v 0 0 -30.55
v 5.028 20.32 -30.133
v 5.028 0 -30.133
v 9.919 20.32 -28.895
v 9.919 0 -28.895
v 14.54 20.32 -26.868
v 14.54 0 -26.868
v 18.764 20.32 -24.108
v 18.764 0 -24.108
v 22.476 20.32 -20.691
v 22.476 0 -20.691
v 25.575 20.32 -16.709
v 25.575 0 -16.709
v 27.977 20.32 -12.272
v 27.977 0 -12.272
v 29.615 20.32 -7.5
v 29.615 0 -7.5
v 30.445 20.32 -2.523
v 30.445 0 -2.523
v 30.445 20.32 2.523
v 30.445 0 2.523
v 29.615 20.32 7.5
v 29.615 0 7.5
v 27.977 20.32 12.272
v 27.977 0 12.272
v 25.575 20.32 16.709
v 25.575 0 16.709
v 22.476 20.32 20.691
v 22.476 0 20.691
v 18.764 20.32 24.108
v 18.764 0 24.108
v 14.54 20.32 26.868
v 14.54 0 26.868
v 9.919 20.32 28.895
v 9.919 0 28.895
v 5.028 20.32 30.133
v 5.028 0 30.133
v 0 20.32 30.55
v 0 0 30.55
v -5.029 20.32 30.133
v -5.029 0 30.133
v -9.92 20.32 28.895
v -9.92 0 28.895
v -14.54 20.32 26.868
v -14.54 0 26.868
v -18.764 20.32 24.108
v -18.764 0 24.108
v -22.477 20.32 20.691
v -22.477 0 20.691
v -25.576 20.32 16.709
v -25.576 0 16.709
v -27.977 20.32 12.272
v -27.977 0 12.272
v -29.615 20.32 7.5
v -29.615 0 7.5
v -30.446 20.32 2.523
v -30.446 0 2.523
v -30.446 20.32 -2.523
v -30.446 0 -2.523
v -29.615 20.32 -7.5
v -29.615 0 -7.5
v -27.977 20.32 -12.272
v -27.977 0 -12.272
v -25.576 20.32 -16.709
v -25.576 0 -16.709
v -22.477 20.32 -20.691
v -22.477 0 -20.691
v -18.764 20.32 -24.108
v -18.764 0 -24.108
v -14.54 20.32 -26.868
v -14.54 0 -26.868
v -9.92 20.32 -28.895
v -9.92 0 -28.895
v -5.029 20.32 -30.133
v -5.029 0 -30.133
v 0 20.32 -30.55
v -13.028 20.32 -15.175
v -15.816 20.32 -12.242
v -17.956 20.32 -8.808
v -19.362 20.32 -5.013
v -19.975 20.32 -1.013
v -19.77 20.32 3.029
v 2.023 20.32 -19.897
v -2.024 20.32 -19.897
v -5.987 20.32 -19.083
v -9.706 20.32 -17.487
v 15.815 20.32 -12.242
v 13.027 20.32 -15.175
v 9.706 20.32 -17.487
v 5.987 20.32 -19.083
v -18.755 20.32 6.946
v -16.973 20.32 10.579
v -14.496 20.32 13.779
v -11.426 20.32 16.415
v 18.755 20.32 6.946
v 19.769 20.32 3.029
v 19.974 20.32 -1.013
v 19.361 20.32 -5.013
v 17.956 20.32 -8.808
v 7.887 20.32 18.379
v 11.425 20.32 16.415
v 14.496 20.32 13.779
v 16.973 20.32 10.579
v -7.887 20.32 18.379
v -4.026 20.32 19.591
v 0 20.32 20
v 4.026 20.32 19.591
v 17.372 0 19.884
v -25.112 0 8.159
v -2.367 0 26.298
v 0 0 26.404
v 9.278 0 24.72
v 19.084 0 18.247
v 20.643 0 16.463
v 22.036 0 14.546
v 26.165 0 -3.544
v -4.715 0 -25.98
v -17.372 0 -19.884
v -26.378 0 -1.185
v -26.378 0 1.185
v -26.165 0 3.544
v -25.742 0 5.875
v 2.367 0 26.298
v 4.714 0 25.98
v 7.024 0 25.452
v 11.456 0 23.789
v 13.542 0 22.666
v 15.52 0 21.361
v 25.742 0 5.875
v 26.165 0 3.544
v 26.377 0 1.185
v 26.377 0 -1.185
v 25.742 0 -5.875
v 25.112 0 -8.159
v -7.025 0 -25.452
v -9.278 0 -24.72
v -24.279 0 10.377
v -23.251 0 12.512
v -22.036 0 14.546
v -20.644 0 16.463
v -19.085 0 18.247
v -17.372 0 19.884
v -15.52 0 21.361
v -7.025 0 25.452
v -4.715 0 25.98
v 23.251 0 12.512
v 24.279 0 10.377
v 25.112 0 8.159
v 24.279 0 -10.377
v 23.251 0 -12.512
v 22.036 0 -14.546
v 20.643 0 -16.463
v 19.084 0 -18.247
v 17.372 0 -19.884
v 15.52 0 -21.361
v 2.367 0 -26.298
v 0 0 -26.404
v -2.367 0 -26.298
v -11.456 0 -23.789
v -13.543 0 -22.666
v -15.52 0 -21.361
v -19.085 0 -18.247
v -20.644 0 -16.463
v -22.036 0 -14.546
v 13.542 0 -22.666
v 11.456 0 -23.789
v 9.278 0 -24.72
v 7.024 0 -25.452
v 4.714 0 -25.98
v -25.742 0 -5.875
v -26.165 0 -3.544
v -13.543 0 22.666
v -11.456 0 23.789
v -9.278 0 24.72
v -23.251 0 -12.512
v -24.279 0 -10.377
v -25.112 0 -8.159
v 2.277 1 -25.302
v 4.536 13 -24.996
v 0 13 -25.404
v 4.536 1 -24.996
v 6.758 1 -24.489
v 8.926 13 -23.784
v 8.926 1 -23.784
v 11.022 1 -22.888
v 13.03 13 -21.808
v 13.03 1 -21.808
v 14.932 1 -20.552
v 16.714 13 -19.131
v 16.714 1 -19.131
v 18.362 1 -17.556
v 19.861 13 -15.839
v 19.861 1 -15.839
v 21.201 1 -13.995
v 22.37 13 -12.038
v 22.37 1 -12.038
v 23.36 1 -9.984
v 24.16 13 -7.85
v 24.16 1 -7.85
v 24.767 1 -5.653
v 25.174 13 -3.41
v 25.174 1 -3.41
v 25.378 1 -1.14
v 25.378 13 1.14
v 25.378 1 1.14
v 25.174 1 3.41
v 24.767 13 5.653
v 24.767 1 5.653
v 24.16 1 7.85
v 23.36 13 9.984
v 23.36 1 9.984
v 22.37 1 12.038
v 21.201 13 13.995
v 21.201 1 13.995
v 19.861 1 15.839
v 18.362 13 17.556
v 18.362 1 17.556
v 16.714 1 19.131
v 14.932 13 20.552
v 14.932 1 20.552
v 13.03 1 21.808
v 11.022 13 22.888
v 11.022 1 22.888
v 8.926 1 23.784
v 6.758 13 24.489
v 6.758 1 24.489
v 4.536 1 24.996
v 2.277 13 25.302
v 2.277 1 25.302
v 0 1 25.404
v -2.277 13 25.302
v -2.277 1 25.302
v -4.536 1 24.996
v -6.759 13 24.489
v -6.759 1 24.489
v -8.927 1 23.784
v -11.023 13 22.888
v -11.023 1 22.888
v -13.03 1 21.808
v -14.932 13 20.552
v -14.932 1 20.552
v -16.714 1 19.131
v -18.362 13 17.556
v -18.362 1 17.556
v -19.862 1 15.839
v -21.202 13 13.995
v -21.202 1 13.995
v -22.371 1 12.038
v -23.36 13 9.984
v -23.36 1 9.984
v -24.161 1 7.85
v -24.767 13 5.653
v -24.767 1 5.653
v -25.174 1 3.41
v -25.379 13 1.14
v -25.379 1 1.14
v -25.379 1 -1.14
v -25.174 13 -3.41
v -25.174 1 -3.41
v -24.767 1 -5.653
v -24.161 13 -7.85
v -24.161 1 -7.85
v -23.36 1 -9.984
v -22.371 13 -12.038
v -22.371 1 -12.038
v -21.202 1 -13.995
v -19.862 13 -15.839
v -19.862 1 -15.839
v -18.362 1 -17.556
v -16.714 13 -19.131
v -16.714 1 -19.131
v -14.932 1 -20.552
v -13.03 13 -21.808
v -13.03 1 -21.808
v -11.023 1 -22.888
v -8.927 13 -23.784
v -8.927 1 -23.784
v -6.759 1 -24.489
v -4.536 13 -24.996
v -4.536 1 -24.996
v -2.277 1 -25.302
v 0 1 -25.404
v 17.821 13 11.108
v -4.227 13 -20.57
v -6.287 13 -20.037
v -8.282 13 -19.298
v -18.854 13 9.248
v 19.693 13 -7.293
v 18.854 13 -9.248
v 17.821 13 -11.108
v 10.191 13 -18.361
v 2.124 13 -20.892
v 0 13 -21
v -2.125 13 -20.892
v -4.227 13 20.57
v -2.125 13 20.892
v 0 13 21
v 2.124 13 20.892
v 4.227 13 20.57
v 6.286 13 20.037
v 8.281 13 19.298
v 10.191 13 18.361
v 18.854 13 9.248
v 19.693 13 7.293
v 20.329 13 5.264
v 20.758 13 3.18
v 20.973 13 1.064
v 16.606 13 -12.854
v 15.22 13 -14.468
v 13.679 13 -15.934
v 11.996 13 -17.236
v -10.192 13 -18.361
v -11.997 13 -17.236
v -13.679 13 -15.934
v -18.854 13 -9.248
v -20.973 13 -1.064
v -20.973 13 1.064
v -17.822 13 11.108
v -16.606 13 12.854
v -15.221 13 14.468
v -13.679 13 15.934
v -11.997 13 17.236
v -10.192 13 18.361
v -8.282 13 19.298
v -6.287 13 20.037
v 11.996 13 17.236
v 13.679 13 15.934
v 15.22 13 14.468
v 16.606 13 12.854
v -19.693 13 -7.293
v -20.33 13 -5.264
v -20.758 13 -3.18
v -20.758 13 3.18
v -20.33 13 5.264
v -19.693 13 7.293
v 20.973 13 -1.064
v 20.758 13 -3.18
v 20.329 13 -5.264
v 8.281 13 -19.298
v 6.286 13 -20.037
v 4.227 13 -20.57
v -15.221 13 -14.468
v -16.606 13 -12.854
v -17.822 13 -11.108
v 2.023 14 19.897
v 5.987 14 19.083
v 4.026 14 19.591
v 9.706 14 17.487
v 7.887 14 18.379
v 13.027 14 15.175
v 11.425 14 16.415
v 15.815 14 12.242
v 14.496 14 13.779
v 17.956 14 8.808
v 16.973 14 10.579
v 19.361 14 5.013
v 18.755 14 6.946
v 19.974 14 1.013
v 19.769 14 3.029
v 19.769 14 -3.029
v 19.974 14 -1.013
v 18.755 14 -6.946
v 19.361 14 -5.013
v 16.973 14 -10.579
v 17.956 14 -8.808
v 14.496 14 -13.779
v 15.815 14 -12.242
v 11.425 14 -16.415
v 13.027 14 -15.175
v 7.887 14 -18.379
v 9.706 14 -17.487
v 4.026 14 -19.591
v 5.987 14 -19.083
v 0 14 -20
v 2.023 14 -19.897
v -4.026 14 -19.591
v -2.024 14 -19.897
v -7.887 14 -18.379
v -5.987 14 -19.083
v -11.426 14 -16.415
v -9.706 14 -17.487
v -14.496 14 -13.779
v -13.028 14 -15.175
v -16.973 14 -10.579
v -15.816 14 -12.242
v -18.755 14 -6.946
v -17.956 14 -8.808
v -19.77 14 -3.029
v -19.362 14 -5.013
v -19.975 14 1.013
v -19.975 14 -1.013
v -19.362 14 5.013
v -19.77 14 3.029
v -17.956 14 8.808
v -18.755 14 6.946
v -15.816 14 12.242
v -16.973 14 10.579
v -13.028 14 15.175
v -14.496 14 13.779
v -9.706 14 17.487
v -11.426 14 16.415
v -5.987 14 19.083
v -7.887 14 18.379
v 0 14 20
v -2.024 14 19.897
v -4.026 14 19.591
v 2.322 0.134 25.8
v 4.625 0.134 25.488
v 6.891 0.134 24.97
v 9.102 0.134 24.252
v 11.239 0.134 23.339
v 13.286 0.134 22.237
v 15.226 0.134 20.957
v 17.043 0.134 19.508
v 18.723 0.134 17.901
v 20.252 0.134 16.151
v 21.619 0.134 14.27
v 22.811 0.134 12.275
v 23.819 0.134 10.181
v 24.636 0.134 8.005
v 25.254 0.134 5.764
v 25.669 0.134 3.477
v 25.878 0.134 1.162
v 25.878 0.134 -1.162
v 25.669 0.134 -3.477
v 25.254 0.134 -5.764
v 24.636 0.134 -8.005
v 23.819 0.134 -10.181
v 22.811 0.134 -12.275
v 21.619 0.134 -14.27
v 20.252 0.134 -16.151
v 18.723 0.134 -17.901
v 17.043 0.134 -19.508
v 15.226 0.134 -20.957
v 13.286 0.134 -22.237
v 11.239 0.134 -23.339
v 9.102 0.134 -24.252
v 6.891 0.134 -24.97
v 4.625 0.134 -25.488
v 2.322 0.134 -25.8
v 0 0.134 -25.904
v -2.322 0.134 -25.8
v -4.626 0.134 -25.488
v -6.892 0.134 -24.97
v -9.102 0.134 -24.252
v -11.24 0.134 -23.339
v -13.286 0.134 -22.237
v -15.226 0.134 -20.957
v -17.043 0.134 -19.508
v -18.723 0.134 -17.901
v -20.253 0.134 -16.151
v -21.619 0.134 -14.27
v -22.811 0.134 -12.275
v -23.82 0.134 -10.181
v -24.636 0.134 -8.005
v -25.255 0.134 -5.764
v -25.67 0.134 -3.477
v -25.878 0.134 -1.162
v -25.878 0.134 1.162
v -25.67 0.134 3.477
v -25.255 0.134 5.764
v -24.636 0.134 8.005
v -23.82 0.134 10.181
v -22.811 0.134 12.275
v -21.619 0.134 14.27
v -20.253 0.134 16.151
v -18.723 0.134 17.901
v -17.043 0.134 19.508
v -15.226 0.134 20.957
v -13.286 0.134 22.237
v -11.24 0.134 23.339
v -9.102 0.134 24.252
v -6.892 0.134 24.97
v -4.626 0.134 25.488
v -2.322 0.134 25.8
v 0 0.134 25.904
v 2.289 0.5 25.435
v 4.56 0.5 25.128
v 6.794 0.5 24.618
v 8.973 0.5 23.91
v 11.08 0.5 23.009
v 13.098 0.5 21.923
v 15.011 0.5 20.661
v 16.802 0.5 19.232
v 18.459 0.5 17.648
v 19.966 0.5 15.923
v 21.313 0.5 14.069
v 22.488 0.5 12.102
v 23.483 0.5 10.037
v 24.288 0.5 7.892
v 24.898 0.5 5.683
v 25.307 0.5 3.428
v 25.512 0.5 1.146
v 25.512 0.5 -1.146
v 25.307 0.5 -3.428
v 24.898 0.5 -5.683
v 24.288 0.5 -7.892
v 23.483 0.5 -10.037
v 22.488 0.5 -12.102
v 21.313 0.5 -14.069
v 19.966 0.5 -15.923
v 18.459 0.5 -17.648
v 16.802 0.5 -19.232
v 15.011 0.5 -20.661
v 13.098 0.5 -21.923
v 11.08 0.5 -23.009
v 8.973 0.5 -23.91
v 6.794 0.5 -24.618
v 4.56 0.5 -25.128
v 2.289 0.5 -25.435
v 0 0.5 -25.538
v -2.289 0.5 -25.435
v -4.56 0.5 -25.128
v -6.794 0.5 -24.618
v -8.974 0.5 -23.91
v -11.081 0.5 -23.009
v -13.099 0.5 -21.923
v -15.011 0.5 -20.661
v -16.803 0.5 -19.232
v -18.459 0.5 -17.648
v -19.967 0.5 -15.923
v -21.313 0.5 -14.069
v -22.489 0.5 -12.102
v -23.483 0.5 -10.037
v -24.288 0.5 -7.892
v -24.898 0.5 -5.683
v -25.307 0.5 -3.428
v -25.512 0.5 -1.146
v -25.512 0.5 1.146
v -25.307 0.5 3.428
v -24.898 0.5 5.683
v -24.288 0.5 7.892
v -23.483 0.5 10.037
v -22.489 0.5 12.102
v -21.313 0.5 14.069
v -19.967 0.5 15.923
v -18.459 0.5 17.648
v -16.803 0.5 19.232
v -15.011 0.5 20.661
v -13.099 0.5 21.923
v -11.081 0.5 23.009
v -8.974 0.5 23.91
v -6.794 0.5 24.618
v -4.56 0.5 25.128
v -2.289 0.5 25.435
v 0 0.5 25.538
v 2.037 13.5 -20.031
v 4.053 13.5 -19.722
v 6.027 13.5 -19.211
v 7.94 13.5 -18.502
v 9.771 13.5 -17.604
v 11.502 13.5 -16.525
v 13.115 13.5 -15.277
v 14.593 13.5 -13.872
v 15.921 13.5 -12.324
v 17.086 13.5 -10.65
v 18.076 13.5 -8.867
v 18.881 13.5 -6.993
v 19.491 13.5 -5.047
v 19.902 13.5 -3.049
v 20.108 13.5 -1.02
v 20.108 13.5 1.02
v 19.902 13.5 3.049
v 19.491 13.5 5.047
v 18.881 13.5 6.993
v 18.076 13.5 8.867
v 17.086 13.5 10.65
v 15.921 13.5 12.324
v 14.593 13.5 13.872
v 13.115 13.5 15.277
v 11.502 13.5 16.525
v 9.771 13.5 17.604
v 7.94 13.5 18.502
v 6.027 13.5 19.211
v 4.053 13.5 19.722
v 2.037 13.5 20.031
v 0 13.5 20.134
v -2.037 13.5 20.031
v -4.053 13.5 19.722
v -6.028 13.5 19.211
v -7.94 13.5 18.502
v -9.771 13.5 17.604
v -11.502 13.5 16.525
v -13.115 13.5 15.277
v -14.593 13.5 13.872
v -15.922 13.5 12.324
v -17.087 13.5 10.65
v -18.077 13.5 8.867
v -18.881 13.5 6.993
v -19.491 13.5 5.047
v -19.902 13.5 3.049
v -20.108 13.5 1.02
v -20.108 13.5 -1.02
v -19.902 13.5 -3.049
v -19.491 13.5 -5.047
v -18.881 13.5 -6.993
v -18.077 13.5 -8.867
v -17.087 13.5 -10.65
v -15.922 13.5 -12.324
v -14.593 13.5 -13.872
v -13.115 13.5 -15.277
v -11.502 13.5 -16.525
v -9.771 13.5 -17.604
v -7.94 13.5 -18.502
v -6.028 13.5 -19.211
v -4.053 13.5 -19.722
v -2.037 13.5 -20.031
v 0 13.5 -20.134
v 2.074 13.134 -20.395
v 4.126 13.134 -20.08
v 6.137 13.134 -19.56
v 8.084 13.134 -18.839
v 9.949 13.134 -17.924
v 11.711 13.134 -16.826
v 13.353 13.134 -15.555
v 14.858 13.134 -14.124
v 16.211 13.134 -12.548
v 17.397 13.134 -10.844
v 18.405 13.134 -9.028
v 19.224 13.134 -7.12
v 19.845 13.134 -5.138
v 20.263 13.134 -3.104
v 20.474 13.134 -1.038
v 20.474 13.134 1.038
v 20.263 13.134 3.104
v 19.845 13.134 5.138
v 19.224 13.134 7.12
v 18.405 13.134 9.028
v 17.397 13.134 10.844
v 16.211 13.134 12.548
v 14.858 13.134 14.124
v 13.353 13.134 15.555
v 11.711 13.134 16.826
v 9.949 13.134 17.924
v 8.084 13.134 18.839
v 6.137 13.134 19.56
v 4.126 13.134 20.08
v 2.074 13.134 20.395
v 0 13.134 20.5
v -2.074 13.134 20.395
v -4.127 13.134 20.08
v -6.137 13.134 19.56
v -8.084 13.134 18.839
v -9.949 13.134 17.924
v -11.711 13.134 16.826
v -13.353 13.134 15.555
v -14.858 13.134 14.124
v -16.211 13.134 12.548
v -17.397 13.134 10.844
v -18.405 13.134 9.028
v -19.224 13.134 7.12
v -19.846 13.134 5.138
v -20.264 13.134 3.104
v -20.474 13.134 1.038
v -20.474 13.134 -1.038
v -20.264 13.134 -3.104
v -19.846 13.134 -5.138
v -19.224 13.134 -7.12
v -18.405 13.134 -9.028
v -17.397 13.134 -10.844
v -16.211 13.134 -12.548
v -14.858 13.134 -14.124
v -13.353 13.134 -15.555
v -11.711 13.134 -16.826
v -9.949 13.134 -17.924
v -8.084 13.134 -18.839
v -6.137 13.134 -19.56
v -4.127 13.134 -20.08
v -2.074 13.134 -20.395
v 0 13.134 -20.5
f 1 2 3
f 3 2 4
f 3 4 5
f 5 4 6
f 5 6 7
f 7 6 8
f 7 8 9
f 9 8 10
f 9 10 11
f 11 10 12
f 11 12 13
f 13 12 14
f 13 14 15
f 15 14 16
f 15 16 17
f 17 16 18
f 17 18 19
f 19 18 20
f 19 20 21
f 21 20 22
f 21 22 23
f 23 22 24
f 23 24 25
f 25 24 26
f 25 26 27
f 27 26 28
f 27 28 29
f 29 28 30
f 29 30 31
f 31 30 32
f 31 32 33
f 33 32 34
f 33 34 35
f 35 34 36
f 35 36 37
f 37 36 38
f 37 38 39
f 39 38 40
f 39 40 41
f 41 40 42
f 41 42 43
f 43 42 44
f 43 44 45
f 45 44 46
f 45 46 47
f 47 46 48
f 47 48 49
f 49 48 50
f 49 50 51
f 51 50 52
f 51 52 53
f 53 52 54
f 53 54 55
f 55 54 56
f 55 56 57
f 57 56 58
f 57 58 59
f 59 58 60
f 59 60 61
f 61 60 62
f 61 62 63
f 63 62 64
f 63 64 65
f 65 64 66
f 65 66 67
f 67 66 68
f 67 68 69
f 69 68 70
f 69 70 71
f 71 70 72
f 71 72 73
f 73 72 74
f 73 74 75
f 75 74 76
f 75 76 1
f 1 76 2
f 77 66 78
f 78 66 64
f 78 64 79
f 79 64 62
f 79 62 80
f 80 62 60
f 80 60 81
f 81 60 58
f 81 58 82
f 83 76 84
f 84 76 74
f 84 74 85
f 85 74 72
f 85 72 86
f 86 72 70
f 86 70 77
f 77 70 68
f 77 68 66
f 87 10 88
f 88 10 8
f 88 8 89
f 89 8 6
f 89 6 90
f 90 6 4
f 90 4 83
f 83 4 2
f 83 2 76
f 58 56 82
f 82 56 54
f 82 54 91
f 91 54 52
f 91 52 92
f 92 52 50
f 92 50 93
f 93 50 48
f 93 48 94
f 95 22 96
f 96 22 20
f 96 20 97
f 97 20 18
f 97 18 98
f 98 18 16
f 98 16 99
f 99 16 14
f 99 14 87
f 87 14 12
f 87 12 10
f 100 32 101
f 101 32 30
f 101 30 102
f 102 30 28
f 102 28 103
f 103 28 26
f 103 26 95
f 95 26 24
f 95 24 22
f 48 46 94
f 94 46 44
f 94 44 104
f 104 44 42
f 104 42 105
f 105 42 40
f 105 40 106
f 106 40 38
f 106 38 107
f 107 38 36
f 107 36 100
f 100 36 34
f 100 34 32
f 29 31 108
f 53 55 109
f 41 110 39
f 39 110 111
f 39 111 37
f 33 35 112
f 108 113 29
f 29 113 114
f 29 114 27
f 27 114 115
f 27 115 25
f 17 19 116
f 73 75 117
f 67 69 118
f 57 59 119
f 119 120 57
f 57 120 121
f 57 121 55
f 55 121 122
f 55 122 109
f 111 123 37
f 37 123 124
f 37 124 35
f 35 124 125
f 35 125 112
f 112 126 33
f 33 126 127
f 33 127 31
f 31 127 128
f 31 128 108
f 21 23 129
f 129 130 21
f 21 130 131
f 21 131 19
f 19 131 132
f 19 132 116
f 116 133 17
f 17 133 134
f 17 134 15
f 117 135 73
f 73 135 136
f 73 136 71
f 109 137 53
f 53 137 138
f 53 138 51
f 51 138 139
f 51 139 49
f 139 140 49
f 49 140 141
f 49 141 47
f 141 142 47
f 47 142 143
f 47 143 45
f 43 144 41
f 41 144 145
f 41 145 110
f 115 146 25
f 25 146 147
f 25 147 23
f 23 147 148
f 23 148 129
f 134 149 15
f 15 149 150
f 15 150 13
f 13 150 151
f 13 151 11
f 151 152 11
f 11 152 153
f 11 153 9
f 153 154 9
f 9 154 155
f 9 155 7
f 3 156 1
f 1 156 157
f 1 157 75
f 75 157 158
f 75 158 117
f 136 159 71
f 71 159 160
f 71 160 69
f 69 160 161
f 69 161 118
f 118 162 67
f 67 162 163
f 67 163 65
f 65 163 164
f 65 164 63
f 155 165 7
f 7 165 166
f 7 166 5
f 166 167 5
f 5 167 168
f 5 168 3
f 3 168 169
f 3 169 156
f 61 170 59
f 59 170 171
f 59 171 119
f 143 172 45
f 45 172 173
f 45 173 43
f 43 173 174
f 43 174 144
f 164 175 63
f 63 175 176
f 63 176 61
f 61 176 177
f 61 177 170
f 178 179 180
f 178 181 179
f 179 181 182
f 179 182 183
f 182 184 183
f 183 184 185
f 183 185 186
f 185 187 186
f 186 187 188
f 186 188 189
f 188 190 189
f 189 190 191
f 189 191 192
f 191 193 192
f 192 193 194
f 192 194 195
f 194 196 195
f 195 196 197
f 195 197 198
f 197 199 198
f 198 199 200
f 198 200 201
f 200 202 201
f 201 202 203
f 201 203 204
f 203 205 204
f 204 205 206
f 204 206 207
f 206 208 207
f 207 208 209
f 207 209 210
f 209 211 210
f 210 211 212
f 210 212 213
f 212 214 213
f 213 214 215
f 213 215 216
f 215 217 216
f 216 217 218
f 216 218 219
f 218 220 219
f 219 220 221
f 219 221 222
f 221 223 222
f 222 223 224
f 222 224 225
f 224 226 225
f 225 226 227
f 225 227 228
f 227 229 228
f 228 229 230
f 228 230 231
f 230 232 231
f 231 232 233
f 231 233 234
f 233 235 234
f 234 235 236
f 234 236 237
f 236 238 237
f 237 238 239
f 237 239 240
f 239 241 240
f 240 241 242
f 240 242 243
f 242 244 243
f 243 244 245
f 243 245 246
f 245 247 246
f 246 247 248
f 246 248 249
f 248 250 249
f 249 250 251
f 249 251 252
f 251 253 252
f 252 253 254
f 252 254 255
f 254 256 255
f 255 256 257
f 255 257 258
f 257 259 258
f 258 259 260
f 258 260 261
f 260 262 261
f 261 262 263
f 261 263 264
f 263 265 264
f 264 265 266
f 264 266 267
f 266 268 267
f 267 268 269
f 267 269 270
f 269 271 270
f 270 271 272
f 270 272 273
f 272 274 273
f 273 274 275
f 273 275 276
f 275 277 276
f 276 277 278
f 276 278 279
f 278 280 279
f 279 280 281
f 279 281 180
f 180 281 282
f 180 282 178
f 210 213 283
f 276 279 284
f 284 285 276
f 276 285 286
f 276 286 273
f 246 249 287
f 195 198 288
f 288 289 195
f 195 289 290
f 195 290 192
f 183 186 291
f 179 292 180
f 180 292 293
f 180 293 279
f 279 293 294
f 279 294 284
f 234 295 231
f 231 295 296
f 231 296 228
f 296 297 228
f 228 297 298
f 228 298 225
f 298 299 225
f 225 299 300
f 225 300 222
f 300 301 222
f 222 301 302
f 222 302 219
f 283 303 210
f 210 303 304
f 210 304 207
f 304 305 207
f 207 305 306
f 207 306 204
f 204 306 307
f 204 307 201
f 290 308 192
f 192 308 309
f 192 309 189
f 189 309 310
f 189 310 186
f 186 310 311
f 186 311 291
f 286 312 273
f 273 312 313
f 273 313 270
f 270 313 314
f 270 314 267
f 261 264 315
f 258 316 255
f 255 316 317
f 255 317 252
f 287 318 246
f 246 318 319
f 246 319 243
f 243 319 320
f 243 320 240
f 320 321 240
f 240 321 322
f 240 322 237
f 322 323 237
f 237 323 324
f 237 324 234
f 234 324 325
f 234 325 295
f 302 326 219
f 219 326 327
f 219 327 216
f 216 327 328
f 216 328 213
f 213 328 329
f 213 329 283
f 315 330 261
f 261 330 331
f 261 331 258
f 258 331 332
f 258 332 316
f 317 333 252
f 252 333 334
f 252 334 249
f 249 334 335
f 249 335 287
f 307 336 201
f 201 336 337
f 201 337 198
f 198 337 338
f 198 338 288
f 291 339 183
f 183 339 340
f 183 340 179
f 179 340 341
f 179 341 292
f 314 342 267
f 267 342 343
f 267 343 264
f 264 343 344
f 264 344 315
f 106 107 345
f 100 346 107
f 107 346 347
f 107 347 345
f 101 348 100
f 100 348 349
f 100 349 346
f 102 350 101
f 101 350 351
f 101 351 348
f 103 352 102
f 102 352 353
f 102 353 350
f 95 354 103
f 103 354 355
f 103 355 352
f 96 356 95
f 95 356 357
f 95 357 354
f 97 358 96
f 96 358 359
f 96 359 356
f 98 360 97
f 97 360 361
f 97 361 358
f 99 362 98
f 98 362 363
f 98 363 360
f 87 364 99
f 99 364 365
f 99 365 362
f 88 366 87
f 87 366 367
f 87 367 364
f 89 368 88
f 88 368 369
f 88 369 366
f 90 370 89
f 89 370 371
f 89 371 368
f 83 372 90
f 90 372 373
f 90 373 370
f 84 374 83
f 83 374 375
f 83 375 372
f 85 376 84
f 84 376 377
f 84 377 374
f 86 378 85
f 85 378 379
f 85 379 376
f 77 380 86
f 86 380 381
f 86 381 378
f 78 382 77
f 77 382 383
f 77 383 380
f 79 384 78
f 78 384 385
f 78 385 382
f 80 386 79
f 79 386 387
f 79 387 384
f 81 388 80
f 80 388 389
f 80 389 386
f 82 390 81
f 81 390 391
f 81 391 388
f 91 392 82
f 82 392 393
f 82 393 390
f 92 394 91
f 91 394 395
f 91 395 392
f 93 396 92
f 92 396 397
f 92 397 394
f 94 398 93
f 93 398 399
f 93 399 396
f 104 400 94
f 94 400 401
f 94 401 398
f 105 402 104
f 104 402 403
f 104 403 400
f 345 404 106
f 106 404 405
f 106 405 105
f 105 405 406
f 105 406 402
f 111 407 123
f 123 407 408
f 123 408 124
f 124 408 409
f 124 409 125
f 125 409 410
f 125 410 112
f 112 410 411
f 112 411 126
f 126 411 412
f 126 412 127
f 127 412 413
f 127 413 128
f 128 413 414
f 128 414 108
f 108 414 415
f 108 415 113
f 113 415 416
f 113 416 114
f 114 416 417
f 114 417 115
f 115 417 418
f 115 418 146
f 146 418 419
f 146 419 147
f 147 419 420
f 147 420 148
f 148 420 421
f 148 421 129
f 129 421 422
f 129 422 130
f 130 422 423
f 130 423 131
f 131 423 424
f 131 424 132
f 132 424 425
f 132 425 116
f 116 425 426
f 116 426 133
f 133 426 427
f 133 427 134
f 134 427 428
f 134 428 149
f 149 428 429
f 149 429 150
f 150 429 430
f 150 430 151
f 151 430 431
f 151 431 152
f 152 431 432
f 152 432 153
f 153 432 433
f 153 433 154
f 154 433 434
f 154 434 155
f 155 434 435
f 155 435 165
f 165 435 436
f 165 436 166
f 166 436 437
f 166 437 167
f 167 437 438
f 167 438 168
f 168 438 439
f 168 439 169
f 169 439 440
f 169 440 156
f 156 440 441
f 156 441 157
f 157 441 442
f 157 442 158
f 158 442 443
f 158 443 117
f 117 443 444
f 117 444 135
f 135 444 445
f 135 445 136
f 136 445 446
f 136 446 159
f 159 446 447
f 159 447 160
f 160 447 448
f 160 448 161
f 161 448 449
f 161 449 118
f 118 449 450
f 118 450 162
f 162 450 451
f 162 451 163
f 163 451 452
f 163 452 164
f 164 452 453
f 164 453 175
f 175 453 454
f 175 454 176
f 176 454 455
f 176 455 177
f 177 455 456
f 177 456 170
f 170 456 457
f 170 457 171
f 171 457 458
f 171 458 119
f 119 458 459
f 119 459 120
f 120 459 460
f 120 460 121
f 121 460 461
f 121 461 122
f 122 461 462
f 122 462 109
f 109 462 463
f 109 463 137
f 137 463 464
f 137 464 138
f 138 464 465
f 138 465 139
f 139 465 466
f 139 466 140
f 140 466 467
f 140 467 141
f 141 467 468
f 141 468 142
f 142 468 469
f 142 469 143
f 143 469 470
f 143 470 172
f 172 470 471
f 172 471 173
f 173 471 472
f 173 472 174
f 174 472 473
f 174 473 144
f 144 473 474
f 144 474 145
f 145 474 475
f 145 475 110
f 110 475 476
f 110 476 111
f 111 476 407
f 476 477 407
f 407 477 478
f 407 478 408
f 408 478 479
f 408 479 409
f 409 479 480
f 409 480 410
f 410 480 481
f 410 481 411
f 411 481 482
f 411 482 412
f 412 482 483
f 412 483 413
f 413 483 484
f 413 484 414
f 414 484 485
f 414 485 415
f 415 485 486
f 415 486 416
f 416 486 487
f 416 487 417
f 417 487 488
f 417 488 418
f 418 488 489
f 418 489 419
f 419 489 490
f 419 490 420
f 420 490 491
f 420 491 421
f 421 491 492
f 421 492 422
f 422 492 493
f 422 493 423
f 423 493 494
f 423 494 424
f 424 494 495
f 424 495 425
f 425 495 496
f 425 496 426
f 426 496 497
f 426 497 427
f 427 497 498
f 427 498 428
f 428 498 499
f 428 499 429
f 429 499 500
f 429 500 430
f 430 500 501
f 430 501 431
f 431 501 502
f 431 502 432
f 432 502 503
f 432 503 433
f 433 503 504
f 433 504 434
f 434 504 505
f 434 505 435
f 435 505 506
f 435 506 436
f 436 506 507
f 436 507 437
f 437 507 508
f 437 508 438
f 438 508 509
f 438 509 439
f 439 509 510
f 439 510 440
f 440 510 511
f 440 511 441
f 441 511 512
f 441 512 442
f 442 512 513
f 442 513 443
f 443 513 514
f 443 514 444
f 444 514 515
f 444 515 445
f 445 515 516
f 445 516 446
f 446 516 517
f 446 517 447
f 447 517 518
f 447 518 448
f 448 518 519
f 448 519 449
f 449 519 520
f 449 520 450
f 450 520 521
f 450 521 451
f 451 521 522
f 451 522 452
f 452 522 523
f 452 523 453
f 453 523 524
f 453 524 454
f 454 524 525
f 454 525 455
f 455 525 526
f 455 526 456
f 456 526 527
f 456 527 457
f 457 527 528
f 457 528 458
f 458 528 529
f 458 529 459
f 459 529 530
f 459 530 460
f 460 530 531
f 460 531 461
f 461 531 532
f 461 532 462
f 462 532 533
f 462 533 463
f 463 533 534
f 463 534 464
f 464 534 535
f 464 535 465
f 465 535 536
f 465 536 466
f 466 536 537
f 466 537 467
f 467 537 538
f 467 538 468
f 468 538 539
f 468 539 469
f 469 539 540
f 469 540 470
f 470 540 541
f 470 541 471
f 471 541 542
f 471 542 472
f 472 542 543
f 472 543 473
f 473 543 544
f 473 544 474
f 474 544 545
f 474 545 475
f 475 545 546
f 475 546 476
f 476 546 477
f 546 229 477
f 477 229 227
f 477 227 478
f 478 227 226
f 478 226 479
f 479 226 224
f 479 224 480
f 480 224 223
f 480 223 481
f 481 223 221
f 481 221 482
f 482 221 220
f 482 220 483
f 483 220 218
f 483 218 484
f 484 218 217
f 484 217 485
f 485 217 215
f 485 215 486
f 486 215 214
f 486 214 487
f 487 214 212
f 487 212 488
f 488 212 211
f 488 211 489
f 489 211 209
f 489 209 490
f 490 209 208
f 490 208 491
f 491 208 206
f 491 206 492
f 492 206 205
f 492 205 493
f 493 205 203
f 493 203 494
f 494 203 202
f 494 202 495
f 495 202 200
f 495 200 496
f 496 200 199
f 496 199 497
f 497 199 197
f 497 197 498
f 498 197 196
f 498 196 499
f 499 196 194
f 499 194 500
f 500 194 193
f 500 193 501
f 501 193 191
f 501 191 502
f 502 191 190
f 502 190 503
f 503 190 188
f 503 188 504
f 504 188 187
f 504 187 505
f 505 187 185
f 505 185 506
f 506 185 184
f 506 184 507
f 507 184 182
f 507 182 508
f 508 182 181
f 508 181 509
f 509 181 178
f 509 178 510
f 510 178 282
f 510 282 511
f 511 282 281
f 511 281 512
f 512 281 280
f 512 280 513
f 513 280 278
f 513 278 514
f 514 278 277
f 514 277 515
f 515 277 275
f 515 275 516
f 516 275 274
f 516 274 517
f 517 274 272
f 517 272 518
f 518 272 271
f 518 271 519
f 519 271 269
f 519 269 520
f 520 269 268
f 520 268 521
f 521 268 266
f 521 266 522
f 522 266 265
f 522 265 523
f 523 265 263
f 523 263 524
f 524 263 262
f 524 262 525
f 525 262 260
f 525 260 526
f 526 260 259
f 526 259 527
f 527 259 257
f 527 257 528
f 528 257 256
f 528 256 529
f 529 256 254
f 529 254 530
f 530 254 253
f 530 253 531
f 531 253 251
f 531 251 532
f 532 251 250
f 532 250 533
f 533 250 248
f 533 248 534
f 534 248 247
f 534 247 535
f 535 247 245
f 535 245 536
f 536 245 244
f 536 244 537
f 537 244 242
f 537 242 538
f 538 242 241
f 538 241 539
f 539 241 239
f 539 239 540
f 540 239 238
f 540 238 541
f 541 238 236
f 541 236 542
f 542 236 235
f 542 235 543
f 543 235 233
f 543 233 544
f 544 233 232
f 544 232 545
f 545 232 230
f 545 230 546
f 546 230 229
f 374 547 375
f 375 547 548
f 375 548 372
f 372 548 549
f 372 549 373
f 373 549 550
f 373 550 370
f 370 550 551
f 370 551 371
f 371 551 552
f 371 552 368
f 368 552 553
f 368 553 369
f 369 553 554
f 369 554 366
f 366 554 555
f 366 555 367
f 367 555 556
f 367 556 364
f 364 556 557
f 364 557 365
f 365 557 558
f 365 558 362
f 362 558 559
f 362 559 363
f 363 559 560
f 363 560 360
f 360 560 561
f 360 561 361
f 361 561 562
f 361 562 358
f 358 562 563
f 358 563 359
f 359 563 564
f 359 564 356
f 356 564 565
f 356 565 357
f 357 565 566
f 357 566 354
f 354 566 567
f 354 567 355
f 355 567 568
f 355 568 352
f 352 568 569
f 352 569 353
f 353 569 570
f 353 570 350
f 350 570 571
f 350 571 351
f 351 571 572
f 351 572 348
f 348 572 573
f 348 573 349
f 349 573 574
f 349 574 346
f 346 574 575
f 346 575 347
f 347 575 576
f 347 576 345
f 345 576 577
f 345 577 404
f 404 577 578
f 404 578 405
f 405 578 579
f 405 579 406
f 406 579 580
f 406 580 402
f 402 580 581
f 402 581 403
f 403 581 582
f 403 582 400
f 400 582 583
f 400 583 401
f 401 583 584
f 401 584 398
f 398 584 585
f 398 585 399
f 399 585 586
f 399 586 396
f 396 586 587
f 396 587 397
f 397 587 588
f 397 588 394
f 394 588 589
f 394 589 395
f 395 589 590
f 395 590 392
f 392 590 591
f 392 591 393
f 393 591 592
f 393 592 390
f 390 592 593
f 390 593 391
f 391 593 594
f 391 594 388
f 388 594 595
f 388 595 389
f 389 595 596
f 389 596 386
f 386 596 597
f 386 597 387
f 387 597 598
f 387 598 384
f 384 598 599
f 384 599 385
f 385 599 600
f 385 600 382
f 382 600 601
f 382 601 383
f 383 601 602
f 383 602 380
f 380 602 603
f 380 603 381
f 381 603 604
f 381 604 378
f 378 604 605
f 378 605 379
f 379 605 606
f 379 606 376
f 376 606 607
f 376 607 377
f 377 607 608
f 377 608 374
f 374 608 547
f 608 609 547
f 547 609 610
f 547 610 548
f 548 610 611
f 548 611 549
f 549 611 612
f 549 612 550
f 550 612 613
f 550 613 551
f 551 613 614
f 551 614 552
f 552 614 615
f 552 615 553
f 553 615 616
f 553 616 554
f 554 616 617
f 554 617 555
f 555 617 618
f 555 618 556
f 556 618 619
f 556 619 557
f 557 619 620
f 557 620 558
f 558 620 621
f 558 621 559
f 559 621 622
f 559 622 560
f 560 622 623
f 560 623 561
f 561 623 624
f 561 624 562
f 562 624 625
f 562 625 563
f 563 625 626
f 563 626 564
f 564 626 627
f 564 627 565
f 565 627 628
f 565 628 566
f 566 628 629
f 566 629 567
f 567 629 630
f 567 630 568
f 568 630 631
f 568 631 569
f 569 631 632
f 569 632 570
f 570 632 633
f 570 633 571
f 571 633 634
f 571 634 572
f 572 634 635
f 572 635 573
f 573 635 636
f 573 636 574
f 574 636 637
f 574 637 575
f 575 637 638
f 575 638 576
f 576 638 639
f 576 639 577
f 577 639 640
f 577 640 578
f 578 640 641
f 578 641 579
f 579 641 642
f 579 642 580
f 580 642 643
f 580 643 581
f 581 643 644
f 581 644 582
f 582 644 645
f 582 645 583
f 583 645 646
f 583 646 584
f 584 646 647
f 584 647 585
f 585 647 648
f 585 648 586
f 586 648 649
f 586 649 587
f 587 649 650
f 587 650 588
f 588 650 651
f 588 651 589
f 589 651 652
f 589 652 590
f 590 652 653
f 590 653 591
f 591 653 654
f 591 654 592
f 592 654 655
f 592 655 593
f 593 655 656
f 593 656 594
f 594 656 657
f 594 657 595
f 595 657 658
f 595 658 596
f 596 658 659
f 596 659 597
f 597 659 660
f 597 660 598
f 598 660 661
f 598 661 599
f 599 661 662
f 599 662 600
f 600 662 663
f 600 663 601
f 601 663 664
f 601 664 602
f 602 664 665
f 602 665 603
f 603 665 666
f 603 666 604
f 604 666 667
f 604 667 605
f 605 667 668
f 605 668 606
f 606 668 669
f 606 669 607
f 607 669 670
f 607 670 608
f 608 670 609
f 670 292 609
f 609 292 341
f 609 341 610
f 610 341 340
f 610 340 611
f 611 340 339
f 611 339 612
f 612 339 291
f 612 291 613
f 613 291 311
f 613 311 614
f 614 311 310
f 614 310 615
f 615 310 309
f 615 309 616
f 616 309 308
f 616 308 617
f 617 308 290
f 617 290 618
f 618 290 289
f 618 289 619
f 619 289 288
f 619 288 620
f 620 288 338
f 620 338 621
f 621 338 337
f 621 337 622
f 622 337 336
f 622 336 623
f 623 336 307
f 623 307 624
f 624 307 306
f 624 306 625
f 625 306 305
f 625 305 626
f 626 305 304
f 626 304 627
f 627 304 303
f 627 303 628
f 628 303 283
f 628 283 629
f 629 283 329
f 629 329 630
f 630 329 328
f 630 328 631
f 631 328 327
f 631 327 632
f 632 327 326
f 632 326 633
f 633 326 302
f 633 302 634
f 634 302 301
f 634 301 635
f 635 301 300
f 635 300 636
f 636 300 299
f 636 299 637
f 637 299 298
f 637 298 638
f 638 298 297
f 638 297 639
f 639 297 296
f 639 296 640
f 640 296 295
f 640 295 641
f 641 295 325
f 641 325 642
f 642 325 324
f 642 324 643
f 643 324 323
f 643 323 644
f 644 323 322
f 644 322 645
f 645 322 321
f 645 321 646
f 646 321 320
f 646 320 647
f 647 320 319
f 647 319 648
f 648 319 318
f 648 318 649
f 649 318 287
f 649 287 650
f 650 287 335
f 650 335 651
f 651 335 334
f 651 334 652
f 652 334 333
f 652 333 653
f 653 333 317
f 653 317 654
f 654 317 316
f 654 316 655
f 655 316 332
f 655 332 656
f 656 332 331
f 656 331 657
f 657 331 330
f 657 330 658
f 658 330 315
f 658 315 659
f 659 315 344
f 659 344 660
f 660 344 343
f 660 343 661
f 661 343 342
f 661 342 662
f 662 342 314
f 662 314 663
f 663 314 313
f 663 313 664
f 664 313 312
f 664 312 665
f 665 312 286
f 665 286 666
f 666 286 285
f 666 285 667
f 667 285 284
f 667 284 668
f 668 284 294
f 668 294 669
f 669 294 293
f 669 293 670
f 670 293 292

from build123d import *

# Parameters (mm, degrees)
SKETCH1_R           = 30.55
BOSS_EXTRUDE1_DEPTH = 20.32
SKETCH2_R           = 25.404
CUT_EXTRUDE1_DEPTH  = 13
SKETCH3_R           = 20
CUT_EXTRUDE2_DEPTH  = 21.32
FILLET1_R           = 1
FILLET2_R           = 1


with BuildPart() as part:
    # Sketch1 → Boss-Extrude1 (new body)
    with BuildSketch(Plane(origin=(0, 0, 0), x_dir=(1, 0, 0), z_dir=(0, 1, 0))):
        Circle(SKETCH1_R)
    extrude(amount=BOSS_EXTRUDE1_DEPTH)

    # Sketch2 → Cut-Extrude1 (cut)
    with BuildSketch(Plane.XZ):
        Circle(SKETCH2_R)
    extrude(amount=-CUT_EXTRUDE1_DEPTH, mode=Mode.SUBTRACT)

    # Sketch3 → Cut-Extrude2 (cut, through all)
    with BuildSketch(Plane(origin=(0, 20.32, 0), x_dir=(1, 0, 0), z_dir=(0, 1, 0))):
        Circle(SKETCH3_R)
    extrude(amount=-CUT_EXTRUDE2_DEPTH, mode=Mode.SUBTRACT)

    # Fillet1
    fillet1_edges = [part.edges().sort_by_distance(p)[0] for p in [
        (-25.404, 0, 0),
    ]]
    fillet(fillet1_edges, radius=FILLET1_R)

    # Fillet2
    fillet2_edges = [part.edges().sort_by_distance(p)[0] for p in [
        (-20, 13, 0),
    ]]
    fillet(fillet2_edges, radius=FILLET2_R)


solid = part.part
